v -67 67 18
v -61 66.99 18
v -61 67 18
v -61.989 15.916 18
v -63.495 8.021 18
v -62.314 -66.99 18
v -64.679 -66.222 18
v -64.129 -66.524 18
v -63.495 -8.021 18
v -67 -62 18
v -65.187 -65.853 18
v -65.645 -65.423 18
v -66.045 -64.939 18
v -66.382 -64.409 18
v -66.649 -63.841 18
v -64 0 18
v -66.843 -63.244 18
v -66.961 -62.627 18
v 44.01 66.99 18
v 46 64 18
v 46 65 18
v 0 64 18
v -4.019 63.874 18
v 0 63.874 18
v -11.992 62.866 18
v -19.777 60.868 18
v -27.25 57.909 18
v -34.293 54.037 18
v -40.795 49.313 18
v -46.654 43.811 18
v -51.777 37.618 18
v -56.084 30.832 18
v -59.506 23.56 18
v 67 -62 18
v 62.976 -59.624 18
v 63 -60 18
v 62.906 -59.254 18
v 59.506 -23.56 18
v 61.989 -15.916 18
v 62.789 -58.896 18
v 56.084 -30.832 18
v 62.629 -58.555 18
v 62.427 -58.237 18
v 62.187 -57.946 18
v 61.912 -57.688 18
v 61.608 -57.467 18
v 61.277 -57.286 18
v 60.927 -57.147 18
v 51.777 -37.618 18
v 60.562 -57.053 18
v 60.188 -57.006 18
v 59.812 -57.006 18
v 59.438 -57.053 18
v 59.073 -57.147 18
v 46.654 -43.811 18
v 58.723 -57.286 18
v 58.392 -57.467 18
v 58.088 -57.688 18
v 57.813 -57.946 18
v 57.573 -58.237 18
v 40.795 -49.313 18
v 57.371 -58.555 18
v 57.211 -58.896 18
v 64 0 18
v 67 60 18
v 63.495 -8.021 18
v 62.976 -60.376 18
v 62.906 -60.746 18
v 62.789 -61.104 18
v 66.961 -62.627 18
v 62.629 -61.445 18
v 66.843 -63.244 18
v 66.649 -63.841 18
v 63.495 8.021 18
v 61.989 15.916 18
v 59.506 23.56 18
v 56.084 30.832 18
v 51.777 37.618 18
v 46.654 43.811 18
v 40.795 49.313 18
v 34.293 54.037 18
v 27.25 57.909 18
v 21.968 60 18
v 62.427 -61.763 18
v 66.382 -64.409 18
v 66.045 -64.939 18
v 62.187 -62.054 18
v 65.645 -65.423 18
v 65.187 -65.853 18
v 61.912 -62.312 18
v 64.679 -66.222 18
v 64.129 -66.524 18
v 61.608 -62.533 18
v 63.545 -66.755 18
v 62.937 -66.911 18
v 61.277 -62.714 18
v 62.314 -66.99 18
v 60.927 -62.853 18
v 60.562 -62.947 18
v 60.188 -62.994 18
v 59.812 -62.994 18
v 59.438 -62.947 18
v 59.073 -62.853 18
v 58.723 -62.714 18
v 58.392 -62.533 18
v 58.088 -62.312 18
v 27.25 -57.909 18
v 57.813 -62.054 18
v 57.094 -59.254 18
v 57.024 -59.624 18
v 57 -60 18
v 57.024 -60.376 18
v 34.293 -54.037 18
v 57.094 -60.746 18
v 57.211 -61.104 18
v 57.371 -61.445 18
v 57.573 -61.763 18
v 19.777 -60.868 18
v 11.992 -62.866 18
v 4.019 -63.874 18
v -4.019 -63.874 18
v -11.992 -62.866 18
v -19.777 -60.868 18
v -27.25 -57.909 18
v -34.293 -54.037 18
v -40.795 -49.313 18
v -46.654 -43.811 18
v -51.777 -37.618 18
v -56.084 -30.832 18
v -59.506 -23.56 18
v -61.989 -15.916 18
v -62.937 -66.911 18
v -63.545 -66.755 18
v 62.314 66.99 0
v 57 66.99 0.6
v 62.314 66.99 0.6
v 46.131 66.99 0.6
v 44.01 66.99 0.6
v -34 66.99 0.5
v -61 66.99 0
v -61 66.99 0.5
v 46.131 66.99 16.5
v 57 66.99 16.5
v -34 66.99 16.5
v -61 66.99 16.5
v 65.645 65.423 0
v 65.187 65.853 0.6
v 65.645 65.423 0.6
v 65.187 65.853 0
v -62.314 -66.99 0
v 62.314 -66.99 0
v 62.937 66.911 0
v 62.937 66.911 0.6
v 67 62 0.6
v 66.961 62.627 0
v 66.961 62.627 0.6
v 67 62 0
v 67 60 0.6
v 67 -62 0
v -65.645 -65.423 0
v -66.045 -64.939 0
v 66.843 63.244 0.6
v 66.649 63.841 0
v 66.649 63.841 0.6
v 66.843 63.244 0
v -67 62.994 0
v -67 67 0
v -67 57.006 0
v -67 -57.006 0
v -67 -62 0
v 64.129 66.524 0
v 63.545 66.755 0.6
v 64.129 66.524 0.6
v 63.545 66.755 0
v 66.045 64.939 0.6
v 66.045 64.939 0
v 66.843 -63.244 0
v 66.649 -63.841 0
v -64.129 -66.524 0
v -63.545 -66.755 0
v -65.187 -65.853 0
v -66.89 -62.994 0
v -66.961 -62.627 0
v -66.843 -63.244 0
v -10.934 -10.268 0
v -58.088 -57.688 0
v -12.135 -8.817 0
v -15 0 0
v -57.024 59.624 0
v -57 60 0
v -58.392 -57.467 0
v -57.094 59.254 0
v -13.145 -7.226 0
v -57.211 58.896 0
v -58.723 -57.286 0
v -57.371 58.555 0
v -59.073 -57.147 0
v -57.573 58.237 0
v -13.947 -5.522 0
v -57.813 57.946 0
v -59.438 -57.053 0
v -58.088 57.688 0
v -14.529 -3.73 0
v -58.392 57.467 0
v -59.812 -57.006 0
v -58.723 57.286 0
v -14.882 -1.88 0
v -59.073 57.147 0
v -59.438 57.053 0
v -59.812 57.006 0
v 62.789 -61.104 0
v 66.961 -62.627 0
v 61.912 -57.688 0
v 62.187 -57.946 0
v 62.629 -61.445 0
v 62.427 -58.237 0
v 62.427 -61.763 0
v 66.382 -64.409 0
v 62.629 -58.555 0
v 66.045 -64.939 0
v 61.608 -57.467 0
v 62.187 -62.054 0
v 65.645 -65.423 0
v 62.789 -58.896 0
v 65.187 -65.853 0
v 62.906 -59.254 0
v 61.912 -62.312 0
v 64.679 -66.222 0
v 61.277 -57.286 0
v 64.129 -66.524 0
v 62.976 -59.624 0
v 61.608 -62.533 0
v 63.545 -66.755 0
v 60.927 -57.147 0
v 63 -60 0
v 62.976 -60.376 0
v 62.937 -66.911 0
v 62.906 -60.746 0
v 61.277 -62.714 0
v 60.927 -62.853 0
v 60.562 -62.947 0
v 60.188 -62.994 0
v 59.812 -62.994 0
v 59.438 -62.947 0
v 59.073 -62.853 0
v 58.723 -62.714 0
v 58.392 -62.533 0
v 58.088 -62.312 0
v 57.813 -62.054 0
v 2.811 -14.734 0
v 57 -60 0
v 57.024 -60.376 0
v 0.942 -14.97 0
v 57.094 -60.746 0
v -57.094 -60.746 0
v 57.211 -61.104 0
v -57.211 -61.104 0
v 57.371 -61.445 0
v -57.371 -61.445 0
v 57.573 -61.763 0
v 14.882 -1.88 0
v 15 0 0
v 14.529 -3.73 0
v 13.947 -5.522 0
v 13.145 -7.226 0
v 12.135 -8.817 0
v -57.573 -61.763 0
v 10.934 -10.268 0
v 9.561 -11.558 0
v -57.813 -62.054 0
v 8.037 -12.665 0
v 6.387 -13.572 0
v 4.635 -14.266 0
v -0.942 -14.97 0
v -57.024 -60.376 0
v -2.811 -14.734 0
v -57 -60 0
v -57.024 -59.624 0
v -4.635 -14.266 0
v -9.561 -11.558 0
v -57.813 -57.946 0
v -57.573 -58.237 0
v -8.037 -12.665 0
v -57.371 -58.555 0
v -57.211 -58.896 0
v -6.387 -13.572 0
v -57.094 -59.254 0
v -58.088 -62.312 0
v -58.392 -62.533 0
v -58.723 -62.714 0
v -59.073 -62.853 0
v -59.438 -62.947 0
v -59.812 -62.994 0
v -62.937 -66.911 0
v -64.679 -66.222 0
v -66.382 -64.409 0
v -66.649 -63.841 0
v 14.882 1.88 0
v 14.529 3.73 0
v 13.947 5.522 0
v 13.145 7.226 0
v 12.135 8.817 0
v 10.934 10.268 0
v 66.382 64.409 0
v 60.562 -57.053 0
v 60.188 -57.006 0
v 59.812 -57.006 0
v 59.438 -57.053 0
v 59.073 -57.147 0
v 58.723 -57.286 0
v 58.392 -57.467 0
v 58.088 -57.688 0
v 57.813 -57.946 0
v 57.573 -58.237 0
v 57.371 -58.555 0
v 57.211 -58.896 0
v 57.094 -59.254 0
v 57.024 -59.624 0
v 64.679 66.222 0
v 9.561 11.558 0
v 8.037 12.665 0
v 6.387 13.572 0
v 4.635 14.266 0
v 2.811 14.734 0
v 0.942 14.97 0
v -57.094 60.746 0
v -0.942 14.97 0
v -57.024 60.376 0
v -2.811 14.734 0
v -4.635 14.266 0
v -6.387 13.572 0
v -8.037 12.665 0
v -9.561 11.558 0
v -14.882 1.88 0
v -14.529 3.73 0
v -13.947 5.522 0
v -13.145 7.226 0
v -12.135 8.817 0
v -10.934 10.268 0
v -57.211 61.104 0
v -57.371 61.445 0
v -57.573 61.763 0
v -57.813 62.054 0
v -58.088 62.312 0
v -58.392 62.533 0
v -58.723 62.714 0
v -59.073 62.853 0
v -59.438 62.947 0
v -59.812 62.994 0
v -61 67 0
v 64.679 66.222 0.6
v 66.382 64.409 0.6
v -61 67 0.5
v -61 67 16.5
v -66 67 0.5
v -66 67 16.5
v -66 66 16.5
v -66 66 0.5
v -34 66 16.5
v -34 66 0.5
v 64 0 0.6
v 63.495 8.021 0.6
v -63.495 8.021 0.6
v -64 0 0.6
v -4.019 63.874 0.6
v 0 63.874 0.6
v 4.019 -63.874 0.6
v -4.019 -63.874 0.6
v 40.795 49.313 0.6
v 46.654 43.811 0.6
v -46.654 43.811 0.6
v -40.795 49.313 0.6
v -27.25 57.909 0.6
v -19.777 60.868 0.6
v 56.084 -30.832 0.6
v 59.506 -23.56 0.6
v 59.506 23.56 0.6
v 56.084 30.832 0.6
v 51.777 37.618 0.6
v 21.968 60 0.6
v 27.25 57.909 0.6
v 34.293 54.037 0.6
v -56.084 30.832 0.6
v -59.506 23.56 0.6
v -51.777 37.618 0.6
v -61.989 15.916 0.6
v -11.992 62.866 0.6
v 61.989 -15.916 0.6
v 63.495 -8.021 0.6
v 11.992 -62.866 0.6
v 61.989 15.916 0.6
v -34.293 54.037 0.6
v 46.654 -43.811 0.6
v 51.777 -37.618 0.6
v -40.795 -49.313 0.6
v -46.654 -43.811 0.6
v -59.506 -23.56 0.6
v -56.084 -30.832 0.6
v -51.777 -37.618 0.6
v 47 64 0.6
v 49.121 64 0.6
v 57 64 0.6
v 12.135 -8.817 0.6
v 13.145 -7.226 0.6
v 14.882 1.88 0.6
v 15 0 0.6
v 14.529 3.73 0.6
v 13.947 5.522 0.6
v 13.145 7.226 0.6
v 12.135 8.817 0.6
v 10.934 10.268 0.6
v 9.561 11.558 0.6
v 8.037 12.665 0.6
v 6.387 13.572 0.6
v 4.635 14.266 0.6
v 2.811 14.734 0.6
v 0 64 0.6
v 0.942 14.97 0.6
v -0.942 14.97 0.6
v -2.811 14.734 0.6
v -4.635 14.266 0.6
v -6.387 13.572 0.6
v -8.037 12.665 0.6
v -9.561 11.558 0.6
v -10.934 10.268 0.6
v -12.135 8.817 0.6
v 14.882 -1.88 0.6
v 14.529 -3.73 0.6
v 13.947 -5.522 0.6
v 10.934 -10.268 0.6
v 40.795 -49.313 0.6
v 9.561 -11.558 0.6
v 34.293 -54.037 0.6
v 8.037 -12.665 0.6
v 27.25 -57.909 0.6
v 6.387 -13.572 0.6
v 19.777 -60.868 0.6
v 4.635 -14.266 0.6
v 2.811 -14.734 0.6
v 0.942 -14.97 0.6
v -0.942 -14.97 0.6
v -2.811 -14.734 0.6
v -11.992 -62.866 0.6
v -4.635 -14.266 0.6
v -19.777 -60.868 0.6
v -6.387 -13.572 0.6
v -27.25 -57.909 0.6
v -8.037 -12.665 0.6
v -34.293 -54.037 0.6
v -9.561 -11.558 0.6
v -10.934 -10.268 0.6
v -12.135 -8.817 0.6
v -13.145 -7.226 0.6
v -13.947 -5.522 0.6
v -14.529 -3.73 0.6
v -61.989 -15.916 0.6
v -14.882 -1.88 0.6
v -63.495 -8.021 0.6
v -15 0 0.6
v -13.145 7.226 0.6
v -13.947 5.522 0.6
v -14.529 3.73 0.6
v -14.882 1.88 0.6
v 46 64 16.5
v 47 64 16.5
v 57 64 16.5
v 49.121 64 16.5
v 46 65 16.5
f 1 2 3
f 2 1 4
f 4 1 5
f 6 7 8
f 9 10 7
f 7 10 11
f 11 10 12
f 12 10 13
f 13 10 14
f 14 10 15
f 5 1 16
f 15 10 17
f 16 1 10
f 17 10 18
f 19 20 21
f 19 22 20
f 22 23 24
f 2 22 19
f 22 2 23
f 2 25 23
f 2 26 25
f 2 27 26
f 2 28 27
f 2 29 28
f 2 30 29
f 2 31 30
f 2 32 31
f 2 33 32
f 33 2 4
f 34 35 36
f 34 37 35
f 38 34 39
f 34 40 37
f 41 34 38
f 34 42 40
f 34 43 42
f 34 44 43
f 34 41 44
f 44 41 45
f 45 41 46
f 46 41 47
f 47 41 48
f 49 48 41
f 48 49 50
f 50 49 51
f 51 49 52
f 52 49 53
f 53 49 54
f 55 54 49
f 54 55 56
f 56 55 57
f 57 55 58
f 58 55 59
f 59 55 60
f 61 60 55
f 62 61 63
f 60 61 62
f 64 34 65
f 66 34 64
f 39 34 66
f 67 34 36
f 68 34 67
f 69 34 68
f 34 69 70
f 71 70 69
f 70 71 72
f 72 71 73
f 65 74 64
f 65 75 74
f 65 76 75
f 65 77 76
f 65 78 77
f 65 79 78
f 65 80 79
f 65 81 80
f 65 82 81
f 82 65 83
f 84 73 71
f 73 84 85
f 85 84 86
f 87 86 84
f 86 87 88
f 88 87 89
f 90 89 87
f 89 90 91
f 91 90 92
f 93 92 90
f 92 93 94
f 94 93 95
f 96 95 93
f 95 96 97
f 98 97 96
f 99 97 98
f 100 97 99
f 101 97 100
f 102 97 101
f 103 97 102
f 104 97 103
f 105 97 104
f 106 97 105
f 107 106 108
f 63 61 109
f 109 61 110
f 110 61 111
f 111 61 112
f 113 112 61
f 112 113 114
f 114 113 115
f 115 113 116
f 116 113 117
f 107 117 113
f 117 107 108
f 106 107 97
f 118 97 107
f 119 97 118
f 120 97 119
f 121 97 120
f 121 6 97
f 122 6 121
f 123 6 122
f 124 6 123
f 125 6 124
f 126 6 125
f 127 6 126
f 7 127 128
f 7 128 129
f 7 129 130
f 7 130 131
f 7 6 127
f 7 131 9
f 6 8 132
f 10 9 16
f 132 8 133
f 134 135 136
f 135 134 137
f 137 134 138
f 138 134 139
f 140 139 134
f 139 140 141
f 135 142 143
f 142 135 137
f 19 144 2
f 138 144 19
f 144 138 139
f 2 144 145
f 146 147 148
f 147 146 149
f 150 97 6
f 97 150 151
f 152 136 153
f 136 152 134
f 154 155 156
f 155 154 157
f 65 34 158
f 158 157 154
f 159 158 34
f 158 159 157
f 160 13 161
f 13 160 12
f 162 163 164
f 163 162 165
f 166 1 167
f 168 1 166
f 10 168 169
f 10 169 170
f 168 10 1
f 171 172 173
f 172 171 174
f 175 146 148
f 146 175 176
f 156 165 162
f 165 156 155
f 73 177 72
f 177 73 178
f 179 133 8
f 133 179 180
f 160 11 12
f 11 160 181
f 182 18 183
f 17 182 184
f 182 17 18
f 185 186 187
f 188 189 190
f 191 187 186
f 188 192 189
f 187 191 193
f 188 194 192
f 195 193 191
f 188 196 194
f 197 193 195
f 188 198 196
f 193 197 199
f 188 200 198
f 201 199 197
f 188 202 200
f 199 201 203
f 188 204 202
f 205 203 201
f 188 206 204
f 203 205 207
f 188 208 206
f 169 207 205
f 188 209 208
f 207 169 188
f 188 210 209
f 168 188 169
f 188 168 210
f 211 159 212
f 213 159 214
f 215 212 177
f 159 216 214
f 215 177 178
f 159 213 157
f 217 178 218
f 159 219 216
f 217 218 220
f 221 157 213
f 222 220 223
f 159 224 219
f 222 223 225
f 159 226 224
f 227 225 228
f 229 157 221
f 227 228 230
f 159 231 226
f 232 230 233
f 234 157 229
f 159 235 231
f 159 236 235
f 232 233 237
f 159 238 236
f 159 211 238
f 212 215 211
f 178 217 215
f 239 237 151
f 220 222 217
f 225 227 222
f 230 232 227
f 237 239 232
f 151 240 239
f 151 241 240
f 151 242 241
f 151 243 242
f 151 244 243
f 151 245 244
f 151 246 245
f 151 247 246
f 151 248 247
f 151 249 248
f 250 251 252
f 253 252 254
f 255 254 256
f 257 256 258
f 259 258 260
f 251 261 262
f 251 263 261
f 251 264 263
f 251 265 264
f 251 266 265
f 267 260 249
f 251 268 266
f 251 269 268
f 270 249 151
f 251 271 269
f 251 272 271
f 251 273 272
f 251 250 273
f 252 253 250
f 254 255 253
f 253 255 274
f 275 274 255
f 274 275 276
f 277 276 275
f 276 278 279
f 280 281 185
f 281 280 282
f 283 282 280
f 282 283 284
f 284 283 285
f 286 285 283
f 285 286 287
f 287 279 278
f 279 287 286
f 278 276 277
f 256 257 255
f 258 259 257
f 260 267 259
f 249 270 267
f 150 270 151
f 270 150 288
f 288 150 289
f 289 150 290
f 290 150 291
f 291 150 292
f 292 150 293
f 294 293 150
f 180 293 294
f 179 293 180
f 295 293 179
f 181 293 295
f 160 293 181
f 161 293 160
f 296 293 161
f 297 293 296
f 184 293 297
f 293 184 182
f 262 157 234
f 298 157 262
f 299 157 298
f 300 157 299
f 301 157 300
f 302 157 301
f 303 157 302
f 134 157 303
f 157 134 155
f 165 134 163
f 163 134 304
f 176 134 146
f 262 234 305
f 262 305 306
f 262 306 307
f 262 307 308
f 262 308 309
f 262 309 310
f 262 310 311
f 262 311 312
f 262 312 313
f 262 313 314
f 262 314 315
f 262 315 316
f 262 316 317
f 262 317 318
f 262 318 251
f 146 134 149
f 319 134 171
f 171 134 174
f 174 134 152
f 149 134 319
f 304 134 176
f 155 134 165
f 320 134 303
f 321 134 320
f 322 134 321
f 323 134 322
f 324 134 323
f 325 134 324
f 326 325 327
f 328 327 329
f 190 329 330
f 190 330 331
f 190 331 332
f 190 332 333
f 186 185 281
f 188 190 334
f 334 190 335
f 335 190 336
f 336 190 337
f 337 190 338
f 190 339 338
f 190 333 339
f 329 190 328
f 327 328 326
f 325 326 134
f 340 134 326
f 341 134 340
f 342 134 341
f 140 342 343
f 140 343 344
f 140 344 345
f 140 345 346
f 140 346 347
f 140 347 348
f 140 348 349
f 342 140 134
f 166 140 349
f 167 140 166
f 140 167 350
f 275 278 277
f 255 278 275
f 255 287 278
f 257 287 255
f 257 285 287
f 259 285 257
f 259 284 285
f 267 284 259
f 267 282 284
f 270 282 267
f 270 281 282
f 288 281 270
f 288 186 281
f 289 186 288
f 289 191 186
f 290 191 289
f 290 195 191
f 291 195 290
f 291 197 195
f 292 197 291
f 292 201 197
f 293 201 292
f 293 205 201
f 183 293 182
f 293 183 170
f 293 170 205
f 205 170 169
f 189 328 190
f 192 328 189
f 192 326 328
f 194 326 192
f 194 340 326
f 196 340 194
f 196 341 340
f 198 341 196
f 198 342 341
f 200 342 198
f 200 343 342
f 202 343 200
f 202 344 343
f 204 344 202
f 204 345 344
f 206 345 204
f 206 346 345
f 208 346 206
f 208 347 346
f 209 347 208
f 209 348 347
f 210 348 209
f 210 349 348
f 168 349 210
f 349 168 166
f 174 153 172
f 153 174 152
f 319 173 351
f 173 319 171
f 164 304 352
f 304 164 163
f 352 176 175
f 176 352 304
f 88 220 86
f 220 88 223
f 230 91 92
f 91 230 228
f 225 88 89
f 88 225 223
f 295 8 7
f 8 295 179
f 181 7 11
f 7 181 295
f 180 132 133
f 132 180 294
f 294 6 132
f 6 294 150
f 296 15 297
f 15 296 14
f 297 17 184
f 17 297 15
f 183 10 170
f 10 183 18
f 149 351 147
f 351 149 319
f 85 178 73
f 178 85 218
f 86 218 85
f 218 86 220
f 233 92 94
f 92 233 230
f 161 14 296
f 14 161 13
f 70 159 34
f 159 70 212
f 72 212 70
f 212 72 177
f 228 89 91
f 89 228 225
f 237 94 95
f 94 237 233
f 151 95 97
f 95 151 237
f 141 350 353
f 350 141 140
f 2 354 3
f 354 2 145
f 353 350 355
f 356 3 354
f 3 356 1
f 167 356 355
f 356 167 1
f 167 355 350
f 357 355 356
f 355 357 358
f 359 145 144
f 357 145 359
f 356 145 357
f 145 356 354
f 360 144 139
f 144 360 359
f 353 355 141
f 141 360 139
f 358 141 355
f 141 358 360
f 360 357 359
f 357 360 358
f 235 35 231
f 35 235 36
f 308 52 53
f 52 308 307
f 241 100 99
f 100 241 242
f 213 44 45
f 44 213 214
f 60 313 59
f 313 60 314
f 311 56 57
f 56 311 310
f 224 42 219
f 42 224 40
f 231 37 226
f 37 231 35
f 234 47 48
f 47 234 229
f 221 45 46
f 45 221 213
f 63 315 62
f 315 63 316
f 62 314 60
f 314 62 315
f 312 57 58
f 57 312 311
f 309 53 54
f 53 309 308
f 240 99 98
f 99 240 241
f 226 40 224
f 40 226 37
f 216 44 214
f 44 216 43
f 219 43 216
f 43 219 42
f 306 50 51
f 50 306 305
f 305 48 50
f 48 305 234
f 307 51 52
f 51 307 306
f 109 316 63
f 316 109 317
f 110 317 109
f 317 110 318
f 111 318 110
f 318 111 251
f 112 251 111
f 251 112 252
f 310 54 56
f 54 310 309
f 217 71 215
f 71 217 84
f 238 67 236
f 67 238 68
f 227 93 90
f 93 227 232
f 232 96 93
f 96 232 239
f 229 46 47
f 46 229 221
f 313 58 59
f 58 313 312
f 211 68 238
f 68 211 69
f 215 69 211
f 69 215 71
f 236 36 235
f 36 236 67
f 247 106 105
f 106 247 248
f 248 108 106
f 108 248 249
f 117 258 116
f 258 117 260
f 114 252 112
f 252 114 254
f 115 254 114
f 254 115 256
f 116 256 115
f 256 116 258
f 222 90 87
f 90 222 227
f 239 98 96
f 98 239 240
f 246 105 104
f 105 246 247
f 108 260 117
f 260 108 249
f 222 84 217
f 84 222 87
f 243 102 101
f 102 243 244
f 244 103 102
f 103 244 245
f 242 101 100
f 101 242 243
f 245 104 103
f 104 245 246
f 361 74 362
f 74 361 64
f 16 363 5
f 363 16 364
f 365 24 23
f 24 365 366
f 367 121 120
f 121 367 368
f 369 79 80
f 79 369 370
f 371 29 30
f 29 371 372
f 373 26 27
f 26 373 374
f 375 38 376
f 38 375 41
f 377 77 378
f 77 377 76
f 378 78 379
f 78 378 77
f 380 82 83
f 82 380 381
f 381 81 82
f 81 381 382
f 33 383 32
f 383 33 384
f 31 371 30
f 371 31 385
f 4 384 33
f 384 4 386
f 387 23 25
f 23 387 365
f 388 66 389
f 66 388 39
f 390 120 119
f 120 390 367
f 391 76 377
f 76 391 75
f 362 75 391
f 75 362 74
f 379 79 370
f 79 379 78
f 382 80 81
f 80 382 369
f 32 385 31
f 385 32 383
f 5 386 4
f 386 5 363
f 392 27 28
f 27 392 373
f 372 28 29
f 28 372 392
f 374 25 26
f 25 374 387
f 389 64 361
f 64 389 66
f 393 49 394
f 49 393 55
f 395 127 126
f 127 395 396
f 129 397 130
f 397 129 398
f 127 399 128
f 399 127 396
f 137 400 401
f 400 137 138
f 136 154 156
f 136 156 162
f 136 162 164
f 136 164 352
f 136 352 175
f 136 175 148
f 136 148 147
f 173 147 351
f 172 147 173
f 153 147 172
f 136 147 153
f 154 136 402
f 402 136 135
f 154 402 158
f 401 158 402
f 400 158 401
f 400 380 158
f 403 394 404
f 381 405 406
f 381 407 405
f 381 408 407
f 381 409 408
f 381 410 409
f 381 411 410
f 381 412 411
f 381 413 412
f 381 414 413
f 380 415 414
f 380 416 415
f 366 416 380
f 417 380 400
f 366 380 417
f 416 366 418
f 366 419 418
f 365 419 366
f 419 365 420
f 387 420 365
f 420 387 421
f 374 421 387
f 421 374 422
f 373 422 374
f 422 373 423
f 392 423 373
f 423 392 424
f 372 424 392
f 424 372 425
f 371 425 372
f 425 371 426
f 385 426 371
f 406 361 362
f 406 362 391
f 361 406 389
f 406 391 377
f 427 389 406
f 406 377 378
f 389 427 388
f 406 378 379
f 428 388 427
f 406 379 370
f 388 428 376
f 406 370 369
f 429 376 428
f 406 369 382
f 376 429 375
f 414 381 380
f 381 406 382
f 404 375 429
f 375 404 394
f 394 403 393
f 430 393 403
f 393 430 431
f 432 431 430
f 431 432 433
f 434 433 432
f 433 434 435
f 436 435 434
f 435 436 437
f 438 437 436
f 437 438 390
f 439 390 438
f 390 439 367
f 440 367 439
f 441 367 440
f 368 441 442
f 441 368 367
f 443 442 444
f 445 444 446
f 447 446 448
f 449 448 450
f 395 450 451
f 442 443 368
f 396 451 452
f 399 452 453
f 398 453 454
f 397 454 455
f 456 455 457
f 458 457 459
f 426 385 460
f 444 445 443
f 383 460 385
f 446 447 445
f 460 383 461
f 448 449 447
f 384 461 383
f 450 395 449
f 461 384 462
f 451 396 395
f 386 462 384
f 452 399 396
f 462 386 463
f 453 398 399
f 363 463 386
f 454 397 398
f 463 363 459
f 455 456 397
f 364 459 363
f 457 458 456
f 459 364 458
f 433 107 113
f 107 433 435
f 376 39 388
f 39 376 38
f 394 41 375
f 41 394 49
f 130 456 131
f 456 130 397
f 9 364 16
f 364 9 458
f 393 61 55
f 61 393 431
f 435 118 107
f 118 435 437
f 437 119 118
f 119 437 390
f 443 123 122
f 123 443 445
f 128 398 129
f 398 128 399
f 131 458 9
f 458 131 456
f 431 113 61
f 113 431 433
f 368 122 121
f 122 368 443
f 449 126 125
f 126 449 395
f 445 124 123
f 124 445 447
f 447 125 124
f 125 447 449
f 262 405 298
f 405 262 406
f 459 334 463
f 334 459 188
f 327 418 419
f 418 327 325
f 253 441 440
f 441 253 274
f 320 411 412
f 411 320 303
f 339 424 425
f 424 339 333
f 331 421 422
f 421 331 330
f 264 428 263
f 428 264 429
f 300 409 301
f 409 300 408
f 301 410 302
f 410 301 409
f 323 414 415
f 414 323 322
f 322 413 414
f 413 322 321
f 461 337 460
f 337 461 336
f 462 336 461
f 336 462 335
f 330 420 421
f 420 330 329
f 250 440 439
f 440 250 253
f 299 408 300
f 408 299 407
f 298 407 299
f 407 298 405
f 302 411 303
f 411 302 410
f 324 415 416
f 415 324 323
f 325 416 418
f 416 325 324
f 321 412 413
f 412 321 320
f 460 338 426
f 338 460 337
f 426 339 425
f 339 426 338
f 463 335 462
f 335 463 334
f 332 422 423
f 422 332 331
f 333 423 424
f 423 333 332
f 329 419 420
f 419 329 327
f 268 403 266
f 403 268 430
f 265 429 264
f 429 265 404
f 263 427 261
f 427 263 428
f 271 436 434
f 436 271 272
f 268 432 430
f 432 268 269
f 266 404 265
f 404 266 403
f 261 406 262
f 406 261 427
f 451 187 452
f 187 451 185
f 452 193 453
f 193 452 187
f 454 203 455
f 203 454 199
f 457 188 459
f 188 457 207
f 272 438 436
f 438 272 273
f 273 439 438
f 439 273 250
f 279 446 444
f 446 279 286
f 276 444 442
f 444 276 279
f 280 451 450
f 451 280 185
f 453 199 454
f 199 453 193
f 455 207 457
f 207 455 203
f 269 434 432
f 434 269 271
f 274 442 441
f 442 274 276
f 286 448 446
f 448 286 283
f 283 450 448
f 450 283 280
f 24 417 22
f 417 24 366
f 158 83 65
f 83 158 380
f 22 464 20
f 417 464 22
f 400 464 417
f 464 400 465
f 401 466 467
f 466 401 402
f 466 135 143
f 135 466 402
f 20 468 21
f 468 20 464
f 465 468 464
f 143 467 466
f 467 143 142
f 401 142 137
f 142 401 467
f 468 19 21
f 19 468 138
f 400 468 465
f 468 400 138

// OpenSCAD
$fn = 50;


difference() {
	union() {
		hull() {
			translate(v = [-62.0000000000, 62.0000000000, 0]) {
				cylinder(h = 18, r = 5);
			}
			translate(v = [62.0000000000, 62.0000000000, 0]) {
				cylinder(h = 18, r = 5);
			}
			translate(v = [-62.0000000000, -62.0000000000, 0]) {
				cylinder(h = 18, r = 5);
			}
			translate(v = [62.0000000000, -62.0000000000, 0]) {
				cylinder(h = 18, r = 5);
			}
		}
		translate(v = [-67.0000000000, 61.0000000000, 0]) {
			cube(size = [6, 6, 18]);
		}
	}
	union() {
		translate(v = [-67.5000000000, -60.0000000000, -250.0000000000]) {
			rotate(a = [0, 0, 0]) {
				difference() {
					union() {
						hull() {
							translate(v = [7.5000000000, 0, 0]) {
								cylinder(h = 250, r = 3.0000000000, r1 = 3.0000000000, r2 = 3.0000000000);
							}
							translate(v = [-7.5000000000, 0, 0]) {
								cylinder(h = 250, r = 3.0000000000, r1 = 3.0000000000, r2 = 3.0000000000);
							}
						}
					}
					union();
				}
			}
		}
		translate(v = [-67.5000000000, 60.0000000000, -250.0000000000]) {
			rotate(a = [0, 0, 0]) {
				difference() {
					union() {
						hull() {
							translate(v = [7.5000000000, 0, 0]) {
								cylinder(h = 250, r = 3.0000000000, r1 = 3.0000000000, r2 = 3.0000000000);
							}
							translate(v = [-7.5000000000, 0, 0]) {
								cylinder(h = 250, r = 3.0000000000, r1 = 3.0000000000, r2 = 3.0000000000);
							}
						}
					}
					union();
				}
			}
		}
		translate(v = [-66.0000000000, 66.0000000000, 0.5000000000]) {
			cube(size = [32, 1, 16]);
		}
		translate(v = [60.0000000000, -60.0000000000, -50.0000000000]) {
			cylinder(h = 100, r = 3.0000000000);
		}
		translate(v = [0, 0, 0.6000000000]) {
			cylinder(h = 20.4000000000, r = 64.0000000000);
		}
		translate(v = [0, 0, -9.0000000000]) {
			cylinder(h = 18, r = 15.0000000000);
		}
		translate(v = [0.0000000000, 60.0000000000, 0.6000000000]) {
			cube(size = [67.0000000000, 4, 20.4000000000]);
		}
		translate(v = [57.0000000000, 60.0000000000, 0.6000000000]) {
			cube(size = [10, 7, 20.4000000000]);
		}
		translate(v = [46.0000000000, 60.0000000000, 16.5000000000]) {
			cube(size = [21, 7, 1.5000000000]);
		}
		translate(v = [43.2500000000, 67.7500000000, 0.6000000000]) {
			rotate(a = [0, 0, -45]) {
				cube(size = [7.5000000000, 1.5000000000, 20.4000000000]);
			}
		}
		translate(v = [12.0610000000, 58.0000000000, 0.6000000000]) {
			cube(size = [7.5000000000, 2, 17.4000000000]);
		}
	}
}
